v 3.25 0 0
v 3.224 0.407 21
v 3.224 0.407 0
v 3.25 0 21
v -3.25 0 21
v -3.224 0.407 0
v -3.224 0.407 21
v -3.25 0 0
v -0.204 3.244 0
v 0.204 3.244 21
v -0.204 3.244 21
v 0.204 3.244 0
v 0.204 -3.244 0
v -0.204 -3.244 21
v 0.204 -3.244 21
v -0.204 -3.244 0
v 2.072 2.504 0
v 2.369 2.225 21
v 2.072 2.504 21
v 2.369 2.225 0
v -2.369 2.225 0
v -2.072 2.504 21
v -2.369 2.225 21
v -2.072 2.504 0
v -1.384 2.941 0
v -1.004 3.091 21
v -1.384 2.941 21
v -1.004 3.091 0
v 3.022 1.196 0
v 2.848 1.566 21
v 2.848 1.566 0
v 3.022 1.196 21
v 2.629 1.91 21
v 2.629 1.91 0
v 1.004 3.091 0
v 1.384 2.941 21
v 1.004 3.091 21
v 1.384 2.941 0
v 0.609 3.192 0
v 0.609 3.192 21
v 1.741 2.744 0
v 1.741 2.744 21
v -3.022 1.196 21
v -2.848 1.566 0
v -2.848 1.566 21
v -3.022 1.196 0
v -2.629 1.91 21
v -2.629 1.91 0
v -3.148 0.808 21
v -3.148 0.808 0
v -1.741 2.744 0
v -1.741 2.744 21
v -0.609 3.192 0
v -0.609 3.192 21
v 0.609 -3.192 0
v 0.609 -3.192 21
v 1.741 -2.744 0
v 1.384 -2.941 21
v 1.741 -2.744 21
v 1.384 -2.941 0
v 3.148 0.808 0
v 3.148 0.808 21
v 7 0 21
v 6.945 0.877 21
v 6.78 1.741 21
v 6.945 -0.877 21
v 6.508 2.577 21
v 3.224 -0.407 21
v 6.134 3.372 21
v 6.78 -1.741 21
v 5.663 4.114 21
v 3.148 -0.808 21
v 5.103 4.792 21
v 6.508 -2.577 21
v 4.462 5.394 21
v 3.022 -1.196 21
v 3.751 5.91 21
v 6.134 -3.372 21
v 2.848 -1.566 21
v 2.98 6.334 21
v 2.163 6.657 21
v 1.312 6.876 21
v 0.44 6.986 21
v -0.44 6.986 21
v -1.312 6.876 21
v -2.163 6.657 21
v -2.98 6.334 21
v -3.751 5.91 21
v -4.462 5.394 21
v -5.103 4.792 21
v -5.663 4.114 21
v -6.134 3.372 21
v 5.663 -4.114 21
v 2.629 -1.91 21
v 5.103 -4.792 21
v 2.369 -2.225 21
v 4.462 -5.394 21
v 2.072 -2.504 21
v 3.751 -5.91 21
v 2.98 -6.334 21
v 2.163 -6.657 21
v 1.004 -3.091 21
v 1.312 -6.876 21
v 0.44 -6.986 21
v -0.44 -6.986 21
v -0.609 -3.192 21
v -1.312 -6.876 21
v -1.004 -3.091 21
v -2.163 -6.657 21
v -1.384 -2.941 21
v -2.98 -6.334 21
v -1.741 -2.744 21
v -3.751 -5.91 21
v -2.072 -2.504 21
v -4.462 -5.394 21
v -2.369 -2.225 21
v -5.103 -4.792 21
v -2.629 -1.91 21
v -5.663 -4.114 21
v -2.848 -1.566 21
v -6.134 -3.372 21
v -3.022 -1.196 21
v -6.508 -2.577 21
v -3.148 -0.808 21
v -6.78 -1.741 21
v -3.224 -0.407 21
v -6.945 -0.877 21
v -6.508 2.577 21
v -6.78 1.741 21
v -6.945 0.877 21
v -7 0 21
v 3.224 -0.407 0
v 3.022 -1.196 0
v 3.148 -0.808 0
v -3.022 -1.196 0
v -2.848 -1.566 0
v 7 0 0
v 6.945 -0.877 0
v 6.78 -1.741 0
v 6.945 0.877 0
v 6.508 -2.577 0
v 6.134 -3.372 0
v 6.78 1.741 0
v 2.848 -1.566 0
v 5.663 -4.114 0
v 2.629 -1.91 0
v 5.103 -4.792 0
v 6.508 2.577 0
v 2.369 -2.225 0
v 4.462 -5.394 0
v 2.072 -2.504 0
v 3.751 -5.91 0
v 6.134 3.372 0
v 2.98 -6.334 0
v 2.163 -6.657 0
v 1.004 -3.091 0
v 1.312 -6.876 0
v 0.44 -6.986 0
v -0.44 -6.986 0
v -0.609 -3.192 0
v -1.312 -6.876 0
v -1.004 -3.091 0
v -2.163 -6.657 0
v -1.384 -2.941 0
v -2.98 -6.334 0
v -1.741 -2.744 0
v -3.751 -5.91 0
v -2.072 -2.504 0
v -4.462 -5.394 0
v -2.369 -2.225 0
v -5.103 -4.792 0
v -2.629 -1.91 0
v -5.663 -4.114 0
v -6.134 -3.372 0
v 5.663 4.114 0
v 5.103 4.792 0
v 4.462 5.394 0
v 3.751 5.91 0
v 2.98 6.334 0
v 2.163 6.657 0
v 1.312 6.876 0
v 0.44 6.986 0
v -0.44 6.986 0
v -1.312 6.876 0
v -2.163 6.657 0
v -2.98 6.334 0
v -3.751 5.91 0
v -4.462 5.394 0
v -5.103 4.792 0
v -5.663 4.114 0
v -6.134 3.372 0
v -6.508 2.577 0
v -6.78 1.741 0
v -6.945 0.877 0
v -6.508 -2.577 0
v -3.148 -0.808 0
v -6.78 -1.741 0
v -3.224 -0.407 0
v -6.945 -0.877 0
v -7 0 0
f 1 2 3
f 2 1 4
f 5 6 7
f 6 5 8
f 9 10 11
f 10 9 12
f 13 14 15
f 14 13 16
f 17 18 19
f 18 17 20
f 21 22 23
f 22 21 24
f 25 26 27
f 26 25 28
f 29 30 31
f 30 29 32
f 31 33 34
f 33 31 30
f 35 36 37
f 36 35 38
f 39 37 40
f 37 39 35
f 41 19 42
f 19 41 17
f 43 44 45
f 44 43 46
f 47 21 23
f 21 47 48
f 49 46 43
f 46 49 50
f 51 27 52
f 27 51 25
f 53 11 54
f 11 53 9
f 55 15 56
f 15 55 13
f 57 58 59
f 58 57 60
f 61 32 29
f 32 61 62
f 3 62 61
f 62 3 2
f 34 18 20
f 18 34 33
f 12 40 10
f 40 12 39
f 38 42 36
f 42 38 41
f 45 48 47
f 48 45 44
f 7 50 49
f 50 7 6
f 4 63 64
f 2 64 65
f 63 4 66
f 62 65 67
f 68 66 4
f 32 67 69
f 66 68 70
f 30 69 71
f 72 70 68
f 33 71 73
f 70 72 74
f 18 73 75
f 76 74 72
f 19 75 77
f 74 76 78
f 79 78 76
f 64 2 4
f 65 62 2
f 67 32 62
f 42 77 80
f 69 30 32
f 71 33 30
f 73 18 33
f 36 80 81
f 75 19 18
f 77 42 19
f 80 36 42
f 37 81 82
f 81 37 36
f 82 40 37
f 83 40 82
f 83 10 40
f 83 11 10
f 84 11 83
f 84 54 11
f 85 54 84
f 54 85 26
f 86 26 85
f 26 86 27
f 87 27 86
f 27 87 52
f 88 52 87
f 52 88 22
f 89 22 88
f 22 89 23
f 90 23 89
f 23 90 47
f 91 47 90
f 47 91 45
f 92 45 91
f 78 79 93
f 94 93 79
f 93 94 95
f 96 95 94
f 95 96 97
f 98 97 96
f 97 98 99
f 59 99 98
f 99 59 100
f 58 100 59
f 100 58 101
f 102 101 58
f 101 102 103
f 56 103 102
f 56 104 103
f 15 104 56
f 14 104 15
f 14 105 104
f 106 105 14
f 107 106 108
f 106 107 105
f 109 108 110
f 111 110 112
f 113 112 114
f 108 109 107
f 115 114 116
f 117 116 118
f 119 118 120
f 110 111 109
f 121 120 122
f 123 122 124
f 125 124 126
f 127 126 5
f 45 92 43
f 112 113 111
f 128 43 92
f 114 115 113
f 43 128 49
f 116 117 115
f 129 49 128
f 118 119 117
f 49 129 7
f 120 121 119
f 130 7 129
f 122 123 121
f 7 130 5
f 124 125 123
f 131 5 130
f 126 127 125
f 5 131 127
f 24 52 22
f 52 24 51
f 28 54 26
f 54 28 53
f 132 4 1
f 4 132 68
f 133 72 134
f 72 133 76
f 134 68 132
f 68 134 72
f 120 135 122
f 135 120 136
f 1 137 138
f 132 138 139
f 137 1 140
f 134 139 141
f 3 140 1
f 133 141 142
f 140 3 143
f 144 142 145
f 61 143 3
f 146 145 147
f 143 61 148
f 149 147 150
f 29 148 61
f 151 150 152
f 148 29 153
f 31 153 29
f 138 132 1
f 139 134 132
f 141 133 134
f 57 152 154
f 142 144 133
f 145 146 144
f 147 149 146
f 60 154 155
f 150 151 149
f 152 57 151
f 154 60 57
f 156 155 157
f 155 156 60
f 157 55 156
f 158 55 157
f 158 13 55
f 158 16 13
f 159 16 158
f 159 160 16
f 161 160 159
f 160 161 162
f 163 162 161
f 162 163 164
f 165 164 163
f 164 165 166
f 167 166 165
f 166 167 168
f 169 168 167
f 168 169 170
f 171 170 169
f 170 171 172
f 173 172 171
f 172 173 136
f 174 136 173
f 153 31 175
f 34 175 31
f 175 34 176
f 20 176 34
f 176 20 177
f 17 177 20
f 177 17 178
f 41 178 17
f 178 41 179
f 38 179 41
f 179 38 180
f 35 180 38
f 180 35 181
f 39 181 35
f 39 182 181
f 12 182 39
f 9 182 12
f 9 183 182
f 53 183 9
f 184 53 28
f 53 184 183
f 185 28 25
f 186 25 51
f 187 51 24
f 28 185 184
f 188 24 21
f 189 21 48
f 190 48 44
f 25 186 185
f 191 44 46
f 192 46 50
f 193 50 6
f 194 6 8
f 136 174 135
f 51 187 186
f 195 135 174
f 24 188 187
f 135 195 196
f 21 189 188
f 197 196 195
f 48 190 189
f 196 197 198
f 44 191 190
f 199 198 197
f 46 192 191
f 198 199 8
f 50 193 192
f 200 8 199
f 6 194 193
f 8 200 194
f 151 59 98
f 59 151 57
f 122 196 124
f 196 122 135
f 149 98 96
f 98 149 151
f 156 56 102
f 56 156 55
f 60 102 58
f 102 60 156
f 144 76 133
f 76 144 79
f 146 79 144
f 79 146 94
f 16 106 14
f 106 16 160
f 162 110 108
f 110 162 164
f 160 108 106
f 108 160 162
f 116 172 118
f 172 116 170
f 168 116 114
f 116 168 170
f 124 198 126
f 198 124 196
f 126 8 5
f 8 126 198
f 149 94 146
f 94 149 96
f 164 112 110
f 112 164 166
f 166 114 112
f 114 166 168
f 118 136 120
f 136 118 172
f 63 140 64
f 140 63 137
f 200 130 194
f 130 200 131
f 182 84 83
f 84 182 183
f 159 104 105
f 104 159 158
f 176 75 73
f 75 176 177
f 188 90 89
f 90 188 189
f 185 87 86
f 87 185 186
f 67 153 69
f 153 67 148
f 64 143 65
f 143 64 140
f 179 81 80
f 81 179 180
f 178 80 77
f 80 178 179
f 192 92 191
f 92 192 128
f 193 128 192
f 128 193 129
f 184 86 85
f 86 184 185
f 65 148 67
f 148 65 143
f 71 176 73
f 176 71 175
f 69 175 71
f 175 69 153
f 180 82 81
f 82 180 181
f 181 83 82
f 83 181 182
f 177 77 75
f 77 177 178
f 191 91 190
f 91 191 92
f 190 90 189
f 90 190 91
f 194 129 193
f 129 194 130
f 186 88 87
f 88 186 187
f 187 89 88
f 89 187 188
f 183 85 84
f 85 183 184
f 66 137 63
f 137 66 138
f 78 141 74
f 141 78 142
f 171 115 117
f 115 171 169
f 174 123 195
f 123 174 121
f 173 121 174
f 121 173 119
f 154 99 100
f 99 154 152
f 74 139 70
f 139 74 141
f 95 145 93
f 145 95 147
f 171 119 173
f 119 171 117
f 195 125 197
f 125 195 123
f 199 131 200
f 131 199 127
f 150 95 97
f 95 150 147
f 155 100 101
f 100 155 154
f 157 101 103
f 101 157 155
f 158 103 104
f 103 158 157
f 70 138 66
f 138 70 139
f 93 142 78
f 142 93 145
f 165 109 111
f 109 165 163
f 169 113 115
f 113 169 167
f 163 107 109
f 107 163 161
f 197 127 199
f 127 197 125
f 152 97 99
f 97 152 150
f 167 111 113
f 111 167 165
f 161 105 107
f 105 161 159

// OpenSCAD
$fn = 50;


difference() {
	union() {
		cylinder(h = 21, r = 7.0000000000);
	}
	union() {
		cylinder(h = 21, r = 3.2500000000);
		cylinder(h = 21, r = 3.2500000000);
		cylinder(h = 21, r = 1.8000000000);
		cylinder(h = 21, r = 1.8000000000);
		cylinder(h = 21, r = 1.8000000000);
		cylinder(h = 21, r = 1.8000000000);
		cylinder(h = 21, r = 1.8000000000);
		cylinder(h = 21, r = 1.8000000000);
	}
}
